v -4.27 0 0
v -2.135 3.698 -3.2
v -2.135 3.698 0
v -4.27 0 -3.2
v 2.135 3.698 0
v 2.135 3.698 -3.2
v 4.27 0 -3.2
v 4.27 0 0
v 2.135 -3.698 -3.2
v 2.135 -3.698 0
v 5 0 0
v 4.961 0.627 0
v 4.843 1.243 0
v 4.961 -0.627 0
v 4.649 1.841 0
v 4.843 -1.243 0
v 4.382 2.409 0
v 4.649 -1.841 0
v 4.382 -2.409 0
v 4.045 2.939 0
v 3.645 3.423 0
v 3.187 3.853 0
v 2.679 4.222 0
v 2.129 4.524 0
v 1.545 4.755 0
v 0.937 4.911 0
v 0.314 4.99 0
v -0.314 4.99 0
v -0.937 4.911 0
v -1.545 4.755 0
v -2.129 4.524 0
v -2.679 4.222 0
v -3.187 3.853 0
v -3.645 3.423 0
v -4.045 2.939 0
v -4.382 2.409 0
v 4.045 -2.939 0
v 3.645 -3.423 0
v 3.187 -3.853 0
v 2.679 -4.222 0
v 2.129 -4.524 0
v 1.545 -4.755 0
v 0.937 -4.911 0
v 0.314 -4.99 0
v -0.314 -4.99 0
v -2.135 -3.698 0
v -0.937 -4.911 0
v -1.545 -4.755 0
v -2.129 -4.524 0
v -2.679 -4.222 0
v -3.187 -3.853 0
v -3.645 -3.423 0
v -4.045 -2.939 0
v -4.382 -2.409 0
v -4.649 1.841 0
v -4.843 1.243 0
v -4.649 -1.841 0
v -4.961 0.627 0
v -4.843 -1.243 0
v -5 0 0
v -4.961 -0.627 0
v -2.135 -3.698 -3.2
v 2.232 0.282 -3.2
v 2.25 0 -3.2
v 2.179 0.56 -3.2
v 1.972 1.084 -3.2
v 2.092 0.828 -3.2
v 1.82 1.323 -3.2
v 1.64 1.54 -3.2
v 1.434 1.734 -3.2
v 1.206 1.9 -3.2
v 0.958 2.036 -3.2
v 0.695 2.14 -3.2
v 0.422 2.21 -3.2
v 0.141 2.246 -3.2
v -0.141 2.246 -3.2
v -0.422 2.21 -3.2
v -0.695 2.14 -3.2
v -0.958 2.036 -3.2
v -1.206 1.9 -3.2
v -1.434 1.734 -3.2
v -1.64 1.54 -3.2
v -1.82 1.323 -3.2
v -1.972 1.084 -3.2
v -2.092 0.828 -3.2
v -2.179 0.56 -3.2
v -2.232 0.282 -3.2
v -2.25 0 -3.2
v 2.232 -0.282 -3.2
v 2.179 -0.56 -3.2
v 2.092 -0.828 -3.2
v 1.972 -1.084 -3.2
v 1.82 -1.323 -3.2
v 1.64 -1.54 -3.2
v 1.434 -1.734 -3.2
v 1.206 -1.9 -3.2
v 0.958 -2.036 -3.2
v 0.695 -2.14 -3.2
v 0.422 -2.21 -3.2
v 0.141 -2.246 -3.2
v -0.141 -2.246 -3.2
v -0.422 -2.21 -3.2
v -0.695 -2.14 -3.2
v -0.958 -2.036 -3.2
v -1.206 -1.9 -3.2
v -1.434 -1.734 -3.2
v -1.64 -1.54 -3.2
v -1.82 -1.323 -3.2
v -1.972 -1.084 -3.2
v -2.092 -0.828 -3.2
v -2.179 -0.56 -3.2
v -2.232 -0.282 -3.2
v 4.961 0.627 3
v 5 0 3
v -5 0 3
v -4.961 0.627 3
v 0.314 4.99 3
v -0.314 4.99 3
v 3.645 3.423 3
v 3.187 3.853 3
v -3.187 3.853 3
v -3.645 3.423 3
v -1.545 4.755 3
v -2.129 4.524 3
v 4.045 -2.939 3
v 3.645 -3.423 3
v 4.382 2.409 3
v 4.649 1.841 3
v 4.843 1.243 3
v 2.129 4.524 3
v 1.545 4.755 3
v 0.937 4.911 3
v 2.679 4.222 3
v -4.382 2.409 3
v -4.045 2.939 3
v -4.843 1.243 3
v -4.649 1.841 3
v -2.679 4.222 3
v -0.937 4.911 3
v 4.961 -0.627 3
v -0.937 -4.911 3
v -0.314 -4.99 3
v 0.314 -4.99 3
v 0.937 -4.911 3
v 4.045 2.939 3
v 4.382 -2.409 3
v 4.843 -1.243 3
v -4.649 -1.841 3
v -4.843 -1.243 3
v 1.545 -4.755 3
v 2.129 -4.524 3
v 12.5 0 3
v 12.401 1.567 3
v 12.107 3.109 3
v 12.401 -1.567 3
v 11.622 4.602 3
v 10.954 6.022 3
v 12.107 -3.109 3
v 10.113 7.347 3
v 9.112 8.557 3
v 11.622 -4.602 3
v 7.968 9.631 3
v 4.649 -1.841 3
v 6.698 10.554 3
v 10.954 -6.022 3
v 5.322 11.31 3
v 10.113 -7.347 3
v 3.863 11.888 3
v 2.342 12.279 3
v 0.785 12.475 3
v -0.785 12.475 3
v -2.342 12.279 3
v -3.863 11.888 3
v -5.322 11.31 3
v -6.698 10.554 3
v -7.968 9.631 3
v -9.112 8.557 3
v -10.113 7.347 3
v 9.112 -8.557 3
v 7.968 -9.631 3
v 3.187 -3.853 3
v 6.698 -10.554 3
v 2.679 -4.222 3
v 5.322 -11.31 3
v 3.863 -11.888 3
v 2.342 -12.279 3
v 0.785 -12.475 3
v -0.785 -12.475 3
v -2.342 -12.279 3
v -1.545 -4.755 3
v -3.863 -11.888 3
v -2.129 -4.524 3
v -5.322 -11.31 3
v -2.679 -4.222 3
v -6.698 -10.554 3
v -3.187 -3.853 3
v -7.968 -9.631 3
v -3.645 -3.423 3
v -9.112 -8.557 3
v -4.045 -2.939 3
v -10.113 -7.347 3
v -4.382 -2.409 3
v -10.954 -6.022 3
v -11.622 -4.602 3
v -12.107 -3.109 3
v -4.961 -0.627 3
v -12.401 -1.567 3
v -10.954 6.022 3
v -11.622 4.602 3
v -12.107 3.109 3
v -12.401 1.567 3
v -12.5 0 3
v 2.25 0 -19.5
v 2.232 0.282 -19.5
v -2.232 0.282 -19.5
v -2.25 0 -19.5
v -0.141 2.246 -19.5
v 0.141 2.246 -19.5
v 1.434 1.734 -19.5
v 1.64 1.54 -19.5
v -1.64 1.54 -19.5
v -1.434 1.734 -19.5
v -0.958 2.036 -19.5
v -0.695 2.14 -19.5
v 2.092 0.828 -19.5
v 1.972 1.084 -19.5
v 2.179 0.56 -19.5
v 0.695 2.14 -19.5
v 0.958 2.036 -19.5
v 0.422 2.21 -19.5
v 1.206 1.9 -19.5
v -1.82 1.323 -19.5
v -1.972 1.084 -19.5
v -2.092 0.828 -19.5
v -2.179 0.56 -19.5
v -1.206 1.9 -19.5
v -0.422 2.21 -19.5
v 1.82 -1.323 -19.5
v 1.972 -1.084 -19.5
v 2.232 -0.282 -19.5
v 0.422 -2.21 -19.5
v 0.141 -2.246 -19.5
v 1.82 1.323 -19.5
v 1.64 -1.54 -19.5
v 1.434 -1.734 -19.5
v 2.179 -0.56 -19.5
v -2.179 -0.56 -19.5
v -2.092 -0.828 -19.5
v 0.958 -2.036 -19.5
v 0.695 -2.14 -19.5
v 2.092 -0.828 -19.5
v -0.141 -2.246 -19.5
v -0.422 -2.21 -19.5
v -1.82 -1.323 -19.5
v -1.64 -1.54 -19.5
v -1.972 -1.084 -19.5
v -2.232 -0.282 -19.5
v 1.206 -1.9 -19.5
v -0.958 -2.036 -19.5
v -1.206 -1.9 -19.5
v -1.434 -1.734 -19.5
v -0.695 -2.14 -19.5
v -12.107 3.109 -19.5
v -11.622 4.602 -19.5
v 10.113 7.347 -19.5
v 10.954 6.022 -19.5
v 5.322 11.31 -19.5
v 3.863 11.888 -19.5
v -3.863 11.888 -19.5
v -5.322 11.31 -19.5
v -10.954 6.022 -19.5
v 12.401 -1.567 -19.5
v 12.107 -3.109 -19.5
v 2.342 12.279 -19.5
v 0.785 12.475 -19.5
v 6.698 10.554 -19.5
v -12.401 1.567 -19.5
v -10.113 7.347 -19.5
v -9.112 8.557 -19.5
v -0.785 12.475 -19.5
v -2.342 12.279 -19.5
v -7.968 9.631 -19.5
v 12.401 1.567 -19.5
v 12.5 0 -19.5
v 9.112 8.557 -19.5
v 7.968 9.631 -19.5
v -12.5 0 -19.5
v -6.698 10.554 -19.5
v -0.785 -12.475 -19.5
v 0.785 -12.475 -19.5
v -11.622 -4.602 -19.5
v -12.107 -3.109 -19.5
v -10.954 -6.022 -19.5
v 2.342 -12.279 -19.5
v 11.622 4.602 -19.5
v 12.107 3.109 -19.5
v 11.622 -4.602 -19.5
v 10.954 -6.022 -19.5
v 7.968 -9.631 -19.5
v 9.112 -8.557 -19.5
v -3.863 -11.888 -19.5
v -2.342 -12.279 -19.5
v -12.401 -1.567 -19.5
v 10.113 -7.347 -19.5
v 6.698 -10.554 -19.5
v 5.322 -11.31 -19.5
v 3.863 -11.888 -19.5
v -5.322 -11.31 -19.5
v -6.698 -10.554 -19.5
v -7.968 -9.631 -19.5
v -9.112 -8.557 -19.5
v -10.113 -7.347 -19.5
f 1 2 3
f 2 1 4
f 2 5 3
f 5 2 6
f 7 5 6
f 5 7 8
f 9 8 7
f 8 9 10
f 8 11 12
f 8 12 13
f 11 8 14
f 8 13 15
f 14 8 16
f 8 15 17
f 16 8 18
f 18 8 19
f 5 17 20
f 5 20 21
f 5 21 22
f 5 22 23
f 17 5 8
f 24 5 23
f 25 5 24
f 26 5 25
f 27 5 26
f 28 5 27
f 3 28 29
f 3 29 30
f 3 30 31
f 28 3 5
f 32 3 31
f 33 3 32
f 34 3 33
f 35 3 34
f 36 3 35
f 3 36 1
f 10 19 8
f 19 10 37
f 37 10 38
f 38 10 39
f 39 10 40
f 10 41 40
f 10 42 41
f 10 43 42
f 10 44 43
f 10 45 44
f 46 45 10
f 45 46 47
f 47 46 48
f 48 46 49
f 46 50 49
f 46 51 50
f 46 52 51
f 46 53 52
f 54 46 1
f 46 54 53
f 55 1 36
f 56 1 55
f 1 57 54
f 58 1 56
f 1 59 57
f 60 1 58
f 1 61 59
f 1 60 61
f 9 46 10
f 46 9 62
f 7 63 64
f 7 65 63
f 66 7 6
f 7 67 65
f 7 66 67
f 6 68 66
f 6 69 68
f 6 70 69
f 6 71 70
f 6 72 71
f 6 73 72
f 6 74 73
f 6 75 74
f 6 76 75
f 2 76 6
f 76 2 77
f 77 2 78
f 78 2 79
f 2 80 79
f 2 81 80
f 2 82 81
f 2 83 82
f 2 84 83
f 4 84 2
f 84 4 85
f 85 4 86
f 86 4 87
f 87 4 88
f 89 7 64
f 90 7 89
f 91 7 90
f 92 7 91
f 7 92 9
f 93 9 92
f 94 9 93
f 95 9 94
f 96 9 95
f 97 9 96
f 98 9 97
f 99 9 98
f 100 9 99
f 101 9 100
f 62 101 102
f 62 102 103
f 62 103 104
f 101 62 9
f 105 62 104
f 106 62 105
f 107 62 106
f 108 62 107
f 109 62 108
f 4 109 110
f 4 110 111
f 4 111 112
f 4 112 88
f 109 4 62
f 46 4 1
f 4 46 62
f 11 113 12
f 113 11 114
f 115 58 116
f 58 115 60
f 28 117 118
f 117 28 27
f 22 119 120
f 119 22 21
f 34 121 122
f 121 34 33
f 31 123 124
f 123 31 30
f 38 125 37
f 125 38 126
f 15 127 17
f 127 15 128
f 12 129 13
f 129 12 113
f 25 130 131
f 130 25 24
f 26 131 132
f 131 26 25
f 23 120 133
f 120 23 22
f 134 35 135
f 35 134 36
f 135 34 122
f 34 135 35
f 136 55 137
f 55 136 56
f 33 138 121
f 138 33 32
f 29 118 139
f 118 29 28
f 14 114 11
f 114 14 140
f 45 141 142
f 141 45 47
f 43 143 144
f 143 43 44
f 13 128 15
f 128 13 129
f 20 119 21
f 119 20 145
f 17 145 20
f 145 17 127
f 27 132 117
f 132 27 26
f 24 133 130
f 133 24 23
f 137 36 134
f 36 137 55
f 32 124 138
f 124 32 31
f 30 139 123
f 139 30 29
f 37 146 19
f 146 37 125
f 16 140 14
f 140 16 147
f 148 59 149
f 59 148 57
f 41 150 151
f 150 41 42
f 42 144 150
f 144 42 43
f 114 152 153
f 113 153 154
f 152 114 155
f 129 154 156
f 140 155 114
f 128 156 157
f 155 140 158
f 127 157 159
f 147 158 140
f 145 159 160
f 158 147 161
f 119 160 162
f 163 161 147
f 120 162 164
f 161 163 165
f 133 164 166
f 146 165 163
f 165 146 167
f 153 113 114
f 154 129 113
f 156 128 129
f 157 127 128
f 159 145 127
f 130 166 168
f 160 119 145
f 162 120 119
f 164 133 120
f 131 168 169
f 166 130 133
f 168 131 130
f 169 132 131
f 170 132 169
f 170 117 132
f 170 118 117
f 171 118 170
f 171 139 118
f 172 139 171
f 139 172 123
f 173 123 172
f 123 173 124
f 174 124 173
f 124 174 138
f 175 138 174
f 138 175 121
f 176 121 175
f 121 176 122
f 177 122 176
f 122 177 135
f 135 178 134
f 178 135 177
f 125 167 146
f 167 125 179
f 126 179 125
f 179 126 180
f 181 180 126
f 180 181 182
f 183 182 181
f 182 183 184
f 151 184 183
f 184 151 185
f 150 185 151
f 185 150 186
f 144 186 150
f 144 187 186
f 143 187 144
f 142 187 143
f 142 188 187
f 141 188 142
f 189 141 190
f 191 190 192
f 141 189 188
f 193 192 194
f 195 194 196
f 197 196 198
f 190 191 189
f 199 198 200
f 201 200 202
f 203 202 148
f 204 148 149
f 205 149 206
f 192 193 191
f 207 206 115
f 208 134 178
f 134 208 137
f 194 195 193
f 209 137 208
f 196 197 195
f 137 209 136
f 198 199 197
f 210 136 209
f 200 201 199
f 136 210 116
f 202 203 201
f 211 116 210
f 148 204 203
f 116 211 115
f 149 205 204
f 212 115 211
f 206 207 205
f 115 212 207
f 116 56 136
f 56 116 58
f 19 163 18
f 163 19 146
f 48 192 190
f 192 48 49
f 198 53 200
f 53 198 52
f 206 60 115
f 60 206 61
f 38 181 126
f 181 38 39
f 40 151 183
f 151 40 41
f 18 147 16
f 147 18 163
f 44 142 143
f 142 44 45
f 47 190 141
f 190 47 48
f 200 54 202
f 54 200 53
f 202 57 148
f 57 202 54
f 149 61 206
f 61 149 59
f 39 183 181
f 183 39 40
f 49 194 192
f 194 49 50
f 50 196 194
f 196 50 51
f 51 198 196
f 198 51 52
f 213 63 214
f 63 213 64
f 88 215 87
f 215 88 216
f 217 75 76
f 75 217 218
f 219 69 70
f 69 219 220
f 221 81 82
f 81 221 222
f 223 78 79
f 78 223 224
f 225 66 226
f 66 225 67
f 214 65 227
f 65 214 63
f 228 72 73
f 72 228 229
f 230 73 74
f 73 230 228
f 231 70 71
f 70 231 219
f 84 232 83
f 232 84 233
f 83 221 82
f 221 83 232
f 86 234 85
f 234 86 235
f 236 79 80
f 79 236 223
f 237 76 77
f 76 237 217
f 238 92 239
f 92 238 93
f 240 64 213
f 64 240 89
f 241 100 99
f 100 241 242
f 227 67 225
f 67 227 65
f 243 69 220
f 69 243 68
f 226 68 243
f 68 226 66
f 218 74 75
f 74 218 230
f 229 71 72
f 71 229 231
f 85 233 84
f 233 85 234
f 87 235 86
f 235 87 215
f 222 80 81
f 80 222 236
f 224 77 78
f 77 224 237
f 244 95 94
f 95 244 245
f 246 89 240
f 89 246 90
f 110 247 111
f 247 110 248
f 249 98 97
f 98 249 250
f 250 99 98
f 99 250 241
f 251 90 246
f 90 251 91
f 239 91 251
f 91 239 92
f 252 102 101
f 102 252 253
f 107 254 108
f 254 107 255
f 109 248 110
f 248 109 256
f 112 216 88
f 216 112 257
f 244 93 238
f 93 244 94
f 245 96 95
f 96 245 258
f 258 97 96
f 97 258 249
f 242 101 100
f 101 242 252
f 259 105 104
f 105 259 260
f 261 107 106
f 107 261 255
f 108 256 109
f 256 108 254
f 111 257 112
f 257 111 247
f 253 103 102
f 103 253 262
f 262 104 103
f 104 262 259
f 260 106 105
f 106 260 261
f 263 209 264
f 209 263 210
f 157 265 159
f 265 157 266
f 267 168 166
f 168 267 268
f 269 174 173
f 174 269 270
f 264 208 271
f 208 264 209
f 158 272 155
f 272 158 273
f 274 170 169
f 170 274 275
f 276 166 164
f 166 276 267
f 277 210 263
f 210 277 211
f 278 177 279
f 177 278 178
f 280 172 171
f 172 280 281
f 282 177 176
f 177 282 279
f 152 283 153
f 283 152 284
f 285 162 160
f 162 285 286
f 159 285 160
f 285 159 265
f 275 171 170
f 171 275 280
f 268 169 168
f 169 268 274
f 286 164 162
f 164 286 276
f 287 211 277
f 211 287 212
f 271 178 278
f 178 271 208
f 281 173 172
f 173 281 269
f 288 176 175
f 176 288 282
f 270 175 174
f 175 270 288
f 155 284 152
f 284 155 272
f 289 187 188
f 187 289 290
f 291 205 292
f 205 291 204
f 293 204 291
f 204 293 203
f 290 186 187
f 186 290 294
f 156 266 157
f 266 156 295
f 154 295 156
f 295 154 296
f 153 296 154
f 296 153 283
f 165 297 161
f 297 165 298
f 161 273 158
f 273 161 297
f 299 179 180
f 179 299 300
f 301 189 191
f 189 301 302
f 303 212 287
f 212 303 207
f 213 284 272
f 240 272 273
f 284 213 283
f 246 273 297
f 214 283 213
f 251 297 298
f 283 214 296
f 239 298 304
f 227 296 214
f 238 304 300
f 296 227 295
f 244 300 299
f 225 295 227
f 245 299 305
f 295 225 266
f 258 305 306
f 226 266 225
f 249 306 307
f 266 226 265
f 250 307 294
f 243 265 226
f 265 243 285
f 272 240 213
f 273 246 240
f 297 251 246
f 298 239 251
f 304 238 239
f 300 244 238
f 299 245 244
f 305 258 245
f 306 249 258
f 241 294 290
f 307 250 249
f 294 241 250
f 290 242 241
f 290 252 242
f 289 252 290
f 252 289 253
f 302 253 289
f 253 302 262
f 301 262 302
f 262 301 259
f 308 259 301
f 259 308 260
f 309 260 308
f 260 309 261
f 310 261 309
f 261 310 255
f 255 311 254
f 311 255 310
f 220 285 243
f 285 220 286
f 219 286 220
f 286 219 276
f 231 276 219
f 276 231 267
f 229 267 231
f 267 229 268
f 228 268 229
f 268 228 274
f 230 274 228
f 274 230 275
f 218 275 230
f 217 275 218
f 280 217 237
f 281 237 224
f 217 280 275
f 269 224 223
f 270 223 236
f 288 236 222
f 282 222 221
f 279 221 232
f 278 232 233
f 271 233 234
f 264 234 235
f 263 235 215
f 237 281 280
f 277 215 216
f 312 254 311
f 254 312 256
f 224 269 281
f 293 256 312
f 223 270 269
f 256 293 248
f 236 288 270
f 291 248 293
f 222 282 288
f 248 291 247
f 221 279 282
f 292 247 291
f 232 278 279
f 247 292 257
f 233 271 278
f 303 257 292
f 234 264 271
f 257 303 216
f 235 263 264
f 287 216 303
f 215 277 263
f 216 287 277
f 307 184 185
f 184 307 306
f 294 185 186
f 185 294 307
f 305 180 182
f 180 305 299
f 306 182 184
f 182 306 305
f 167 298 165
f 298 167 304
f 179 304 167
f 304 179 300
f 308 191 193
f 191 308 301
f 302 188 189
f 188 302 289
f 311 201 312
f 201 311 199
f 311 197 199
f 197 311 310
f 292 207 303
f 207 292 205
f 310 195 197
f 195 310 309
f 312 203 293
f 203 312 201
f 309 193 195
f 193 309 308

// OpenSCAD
$fn = 50;


difference() {
	union() {
		translate(v = [0, 0, -19.5000000000]) {
			cylinder(h = 22.5000000000, r = 12.5000000000);
		}
	}
	union() {
		translate(v = [0, 0, 0]) {
			rotate(a = [0, 0, 0]) {
				difference() {
					union() {
						translate(v = [0, 0, -3.2000000000]) {
							linear_extrude(height = 3.2000000000) {
								polygon(points = [[4.2698000000, 0.0000000000], [2.1349000000, 3.6977552691], [-2.1349000000, 3.6977552691], [-4.2698000000, 0.0000000000], [-2.1349000000, -3.6977552691], [2.1349000000, -3.6977552691]]);
							}
						}
					}
					union();
				}
			}
		}
		#cylinder(h = 3, r = 5.0000000000);
		#translate(v = [0, 0, -100.0000000000]) {
			cylinder(h = 200, r = 2.2500000000);
		}
	}
}
